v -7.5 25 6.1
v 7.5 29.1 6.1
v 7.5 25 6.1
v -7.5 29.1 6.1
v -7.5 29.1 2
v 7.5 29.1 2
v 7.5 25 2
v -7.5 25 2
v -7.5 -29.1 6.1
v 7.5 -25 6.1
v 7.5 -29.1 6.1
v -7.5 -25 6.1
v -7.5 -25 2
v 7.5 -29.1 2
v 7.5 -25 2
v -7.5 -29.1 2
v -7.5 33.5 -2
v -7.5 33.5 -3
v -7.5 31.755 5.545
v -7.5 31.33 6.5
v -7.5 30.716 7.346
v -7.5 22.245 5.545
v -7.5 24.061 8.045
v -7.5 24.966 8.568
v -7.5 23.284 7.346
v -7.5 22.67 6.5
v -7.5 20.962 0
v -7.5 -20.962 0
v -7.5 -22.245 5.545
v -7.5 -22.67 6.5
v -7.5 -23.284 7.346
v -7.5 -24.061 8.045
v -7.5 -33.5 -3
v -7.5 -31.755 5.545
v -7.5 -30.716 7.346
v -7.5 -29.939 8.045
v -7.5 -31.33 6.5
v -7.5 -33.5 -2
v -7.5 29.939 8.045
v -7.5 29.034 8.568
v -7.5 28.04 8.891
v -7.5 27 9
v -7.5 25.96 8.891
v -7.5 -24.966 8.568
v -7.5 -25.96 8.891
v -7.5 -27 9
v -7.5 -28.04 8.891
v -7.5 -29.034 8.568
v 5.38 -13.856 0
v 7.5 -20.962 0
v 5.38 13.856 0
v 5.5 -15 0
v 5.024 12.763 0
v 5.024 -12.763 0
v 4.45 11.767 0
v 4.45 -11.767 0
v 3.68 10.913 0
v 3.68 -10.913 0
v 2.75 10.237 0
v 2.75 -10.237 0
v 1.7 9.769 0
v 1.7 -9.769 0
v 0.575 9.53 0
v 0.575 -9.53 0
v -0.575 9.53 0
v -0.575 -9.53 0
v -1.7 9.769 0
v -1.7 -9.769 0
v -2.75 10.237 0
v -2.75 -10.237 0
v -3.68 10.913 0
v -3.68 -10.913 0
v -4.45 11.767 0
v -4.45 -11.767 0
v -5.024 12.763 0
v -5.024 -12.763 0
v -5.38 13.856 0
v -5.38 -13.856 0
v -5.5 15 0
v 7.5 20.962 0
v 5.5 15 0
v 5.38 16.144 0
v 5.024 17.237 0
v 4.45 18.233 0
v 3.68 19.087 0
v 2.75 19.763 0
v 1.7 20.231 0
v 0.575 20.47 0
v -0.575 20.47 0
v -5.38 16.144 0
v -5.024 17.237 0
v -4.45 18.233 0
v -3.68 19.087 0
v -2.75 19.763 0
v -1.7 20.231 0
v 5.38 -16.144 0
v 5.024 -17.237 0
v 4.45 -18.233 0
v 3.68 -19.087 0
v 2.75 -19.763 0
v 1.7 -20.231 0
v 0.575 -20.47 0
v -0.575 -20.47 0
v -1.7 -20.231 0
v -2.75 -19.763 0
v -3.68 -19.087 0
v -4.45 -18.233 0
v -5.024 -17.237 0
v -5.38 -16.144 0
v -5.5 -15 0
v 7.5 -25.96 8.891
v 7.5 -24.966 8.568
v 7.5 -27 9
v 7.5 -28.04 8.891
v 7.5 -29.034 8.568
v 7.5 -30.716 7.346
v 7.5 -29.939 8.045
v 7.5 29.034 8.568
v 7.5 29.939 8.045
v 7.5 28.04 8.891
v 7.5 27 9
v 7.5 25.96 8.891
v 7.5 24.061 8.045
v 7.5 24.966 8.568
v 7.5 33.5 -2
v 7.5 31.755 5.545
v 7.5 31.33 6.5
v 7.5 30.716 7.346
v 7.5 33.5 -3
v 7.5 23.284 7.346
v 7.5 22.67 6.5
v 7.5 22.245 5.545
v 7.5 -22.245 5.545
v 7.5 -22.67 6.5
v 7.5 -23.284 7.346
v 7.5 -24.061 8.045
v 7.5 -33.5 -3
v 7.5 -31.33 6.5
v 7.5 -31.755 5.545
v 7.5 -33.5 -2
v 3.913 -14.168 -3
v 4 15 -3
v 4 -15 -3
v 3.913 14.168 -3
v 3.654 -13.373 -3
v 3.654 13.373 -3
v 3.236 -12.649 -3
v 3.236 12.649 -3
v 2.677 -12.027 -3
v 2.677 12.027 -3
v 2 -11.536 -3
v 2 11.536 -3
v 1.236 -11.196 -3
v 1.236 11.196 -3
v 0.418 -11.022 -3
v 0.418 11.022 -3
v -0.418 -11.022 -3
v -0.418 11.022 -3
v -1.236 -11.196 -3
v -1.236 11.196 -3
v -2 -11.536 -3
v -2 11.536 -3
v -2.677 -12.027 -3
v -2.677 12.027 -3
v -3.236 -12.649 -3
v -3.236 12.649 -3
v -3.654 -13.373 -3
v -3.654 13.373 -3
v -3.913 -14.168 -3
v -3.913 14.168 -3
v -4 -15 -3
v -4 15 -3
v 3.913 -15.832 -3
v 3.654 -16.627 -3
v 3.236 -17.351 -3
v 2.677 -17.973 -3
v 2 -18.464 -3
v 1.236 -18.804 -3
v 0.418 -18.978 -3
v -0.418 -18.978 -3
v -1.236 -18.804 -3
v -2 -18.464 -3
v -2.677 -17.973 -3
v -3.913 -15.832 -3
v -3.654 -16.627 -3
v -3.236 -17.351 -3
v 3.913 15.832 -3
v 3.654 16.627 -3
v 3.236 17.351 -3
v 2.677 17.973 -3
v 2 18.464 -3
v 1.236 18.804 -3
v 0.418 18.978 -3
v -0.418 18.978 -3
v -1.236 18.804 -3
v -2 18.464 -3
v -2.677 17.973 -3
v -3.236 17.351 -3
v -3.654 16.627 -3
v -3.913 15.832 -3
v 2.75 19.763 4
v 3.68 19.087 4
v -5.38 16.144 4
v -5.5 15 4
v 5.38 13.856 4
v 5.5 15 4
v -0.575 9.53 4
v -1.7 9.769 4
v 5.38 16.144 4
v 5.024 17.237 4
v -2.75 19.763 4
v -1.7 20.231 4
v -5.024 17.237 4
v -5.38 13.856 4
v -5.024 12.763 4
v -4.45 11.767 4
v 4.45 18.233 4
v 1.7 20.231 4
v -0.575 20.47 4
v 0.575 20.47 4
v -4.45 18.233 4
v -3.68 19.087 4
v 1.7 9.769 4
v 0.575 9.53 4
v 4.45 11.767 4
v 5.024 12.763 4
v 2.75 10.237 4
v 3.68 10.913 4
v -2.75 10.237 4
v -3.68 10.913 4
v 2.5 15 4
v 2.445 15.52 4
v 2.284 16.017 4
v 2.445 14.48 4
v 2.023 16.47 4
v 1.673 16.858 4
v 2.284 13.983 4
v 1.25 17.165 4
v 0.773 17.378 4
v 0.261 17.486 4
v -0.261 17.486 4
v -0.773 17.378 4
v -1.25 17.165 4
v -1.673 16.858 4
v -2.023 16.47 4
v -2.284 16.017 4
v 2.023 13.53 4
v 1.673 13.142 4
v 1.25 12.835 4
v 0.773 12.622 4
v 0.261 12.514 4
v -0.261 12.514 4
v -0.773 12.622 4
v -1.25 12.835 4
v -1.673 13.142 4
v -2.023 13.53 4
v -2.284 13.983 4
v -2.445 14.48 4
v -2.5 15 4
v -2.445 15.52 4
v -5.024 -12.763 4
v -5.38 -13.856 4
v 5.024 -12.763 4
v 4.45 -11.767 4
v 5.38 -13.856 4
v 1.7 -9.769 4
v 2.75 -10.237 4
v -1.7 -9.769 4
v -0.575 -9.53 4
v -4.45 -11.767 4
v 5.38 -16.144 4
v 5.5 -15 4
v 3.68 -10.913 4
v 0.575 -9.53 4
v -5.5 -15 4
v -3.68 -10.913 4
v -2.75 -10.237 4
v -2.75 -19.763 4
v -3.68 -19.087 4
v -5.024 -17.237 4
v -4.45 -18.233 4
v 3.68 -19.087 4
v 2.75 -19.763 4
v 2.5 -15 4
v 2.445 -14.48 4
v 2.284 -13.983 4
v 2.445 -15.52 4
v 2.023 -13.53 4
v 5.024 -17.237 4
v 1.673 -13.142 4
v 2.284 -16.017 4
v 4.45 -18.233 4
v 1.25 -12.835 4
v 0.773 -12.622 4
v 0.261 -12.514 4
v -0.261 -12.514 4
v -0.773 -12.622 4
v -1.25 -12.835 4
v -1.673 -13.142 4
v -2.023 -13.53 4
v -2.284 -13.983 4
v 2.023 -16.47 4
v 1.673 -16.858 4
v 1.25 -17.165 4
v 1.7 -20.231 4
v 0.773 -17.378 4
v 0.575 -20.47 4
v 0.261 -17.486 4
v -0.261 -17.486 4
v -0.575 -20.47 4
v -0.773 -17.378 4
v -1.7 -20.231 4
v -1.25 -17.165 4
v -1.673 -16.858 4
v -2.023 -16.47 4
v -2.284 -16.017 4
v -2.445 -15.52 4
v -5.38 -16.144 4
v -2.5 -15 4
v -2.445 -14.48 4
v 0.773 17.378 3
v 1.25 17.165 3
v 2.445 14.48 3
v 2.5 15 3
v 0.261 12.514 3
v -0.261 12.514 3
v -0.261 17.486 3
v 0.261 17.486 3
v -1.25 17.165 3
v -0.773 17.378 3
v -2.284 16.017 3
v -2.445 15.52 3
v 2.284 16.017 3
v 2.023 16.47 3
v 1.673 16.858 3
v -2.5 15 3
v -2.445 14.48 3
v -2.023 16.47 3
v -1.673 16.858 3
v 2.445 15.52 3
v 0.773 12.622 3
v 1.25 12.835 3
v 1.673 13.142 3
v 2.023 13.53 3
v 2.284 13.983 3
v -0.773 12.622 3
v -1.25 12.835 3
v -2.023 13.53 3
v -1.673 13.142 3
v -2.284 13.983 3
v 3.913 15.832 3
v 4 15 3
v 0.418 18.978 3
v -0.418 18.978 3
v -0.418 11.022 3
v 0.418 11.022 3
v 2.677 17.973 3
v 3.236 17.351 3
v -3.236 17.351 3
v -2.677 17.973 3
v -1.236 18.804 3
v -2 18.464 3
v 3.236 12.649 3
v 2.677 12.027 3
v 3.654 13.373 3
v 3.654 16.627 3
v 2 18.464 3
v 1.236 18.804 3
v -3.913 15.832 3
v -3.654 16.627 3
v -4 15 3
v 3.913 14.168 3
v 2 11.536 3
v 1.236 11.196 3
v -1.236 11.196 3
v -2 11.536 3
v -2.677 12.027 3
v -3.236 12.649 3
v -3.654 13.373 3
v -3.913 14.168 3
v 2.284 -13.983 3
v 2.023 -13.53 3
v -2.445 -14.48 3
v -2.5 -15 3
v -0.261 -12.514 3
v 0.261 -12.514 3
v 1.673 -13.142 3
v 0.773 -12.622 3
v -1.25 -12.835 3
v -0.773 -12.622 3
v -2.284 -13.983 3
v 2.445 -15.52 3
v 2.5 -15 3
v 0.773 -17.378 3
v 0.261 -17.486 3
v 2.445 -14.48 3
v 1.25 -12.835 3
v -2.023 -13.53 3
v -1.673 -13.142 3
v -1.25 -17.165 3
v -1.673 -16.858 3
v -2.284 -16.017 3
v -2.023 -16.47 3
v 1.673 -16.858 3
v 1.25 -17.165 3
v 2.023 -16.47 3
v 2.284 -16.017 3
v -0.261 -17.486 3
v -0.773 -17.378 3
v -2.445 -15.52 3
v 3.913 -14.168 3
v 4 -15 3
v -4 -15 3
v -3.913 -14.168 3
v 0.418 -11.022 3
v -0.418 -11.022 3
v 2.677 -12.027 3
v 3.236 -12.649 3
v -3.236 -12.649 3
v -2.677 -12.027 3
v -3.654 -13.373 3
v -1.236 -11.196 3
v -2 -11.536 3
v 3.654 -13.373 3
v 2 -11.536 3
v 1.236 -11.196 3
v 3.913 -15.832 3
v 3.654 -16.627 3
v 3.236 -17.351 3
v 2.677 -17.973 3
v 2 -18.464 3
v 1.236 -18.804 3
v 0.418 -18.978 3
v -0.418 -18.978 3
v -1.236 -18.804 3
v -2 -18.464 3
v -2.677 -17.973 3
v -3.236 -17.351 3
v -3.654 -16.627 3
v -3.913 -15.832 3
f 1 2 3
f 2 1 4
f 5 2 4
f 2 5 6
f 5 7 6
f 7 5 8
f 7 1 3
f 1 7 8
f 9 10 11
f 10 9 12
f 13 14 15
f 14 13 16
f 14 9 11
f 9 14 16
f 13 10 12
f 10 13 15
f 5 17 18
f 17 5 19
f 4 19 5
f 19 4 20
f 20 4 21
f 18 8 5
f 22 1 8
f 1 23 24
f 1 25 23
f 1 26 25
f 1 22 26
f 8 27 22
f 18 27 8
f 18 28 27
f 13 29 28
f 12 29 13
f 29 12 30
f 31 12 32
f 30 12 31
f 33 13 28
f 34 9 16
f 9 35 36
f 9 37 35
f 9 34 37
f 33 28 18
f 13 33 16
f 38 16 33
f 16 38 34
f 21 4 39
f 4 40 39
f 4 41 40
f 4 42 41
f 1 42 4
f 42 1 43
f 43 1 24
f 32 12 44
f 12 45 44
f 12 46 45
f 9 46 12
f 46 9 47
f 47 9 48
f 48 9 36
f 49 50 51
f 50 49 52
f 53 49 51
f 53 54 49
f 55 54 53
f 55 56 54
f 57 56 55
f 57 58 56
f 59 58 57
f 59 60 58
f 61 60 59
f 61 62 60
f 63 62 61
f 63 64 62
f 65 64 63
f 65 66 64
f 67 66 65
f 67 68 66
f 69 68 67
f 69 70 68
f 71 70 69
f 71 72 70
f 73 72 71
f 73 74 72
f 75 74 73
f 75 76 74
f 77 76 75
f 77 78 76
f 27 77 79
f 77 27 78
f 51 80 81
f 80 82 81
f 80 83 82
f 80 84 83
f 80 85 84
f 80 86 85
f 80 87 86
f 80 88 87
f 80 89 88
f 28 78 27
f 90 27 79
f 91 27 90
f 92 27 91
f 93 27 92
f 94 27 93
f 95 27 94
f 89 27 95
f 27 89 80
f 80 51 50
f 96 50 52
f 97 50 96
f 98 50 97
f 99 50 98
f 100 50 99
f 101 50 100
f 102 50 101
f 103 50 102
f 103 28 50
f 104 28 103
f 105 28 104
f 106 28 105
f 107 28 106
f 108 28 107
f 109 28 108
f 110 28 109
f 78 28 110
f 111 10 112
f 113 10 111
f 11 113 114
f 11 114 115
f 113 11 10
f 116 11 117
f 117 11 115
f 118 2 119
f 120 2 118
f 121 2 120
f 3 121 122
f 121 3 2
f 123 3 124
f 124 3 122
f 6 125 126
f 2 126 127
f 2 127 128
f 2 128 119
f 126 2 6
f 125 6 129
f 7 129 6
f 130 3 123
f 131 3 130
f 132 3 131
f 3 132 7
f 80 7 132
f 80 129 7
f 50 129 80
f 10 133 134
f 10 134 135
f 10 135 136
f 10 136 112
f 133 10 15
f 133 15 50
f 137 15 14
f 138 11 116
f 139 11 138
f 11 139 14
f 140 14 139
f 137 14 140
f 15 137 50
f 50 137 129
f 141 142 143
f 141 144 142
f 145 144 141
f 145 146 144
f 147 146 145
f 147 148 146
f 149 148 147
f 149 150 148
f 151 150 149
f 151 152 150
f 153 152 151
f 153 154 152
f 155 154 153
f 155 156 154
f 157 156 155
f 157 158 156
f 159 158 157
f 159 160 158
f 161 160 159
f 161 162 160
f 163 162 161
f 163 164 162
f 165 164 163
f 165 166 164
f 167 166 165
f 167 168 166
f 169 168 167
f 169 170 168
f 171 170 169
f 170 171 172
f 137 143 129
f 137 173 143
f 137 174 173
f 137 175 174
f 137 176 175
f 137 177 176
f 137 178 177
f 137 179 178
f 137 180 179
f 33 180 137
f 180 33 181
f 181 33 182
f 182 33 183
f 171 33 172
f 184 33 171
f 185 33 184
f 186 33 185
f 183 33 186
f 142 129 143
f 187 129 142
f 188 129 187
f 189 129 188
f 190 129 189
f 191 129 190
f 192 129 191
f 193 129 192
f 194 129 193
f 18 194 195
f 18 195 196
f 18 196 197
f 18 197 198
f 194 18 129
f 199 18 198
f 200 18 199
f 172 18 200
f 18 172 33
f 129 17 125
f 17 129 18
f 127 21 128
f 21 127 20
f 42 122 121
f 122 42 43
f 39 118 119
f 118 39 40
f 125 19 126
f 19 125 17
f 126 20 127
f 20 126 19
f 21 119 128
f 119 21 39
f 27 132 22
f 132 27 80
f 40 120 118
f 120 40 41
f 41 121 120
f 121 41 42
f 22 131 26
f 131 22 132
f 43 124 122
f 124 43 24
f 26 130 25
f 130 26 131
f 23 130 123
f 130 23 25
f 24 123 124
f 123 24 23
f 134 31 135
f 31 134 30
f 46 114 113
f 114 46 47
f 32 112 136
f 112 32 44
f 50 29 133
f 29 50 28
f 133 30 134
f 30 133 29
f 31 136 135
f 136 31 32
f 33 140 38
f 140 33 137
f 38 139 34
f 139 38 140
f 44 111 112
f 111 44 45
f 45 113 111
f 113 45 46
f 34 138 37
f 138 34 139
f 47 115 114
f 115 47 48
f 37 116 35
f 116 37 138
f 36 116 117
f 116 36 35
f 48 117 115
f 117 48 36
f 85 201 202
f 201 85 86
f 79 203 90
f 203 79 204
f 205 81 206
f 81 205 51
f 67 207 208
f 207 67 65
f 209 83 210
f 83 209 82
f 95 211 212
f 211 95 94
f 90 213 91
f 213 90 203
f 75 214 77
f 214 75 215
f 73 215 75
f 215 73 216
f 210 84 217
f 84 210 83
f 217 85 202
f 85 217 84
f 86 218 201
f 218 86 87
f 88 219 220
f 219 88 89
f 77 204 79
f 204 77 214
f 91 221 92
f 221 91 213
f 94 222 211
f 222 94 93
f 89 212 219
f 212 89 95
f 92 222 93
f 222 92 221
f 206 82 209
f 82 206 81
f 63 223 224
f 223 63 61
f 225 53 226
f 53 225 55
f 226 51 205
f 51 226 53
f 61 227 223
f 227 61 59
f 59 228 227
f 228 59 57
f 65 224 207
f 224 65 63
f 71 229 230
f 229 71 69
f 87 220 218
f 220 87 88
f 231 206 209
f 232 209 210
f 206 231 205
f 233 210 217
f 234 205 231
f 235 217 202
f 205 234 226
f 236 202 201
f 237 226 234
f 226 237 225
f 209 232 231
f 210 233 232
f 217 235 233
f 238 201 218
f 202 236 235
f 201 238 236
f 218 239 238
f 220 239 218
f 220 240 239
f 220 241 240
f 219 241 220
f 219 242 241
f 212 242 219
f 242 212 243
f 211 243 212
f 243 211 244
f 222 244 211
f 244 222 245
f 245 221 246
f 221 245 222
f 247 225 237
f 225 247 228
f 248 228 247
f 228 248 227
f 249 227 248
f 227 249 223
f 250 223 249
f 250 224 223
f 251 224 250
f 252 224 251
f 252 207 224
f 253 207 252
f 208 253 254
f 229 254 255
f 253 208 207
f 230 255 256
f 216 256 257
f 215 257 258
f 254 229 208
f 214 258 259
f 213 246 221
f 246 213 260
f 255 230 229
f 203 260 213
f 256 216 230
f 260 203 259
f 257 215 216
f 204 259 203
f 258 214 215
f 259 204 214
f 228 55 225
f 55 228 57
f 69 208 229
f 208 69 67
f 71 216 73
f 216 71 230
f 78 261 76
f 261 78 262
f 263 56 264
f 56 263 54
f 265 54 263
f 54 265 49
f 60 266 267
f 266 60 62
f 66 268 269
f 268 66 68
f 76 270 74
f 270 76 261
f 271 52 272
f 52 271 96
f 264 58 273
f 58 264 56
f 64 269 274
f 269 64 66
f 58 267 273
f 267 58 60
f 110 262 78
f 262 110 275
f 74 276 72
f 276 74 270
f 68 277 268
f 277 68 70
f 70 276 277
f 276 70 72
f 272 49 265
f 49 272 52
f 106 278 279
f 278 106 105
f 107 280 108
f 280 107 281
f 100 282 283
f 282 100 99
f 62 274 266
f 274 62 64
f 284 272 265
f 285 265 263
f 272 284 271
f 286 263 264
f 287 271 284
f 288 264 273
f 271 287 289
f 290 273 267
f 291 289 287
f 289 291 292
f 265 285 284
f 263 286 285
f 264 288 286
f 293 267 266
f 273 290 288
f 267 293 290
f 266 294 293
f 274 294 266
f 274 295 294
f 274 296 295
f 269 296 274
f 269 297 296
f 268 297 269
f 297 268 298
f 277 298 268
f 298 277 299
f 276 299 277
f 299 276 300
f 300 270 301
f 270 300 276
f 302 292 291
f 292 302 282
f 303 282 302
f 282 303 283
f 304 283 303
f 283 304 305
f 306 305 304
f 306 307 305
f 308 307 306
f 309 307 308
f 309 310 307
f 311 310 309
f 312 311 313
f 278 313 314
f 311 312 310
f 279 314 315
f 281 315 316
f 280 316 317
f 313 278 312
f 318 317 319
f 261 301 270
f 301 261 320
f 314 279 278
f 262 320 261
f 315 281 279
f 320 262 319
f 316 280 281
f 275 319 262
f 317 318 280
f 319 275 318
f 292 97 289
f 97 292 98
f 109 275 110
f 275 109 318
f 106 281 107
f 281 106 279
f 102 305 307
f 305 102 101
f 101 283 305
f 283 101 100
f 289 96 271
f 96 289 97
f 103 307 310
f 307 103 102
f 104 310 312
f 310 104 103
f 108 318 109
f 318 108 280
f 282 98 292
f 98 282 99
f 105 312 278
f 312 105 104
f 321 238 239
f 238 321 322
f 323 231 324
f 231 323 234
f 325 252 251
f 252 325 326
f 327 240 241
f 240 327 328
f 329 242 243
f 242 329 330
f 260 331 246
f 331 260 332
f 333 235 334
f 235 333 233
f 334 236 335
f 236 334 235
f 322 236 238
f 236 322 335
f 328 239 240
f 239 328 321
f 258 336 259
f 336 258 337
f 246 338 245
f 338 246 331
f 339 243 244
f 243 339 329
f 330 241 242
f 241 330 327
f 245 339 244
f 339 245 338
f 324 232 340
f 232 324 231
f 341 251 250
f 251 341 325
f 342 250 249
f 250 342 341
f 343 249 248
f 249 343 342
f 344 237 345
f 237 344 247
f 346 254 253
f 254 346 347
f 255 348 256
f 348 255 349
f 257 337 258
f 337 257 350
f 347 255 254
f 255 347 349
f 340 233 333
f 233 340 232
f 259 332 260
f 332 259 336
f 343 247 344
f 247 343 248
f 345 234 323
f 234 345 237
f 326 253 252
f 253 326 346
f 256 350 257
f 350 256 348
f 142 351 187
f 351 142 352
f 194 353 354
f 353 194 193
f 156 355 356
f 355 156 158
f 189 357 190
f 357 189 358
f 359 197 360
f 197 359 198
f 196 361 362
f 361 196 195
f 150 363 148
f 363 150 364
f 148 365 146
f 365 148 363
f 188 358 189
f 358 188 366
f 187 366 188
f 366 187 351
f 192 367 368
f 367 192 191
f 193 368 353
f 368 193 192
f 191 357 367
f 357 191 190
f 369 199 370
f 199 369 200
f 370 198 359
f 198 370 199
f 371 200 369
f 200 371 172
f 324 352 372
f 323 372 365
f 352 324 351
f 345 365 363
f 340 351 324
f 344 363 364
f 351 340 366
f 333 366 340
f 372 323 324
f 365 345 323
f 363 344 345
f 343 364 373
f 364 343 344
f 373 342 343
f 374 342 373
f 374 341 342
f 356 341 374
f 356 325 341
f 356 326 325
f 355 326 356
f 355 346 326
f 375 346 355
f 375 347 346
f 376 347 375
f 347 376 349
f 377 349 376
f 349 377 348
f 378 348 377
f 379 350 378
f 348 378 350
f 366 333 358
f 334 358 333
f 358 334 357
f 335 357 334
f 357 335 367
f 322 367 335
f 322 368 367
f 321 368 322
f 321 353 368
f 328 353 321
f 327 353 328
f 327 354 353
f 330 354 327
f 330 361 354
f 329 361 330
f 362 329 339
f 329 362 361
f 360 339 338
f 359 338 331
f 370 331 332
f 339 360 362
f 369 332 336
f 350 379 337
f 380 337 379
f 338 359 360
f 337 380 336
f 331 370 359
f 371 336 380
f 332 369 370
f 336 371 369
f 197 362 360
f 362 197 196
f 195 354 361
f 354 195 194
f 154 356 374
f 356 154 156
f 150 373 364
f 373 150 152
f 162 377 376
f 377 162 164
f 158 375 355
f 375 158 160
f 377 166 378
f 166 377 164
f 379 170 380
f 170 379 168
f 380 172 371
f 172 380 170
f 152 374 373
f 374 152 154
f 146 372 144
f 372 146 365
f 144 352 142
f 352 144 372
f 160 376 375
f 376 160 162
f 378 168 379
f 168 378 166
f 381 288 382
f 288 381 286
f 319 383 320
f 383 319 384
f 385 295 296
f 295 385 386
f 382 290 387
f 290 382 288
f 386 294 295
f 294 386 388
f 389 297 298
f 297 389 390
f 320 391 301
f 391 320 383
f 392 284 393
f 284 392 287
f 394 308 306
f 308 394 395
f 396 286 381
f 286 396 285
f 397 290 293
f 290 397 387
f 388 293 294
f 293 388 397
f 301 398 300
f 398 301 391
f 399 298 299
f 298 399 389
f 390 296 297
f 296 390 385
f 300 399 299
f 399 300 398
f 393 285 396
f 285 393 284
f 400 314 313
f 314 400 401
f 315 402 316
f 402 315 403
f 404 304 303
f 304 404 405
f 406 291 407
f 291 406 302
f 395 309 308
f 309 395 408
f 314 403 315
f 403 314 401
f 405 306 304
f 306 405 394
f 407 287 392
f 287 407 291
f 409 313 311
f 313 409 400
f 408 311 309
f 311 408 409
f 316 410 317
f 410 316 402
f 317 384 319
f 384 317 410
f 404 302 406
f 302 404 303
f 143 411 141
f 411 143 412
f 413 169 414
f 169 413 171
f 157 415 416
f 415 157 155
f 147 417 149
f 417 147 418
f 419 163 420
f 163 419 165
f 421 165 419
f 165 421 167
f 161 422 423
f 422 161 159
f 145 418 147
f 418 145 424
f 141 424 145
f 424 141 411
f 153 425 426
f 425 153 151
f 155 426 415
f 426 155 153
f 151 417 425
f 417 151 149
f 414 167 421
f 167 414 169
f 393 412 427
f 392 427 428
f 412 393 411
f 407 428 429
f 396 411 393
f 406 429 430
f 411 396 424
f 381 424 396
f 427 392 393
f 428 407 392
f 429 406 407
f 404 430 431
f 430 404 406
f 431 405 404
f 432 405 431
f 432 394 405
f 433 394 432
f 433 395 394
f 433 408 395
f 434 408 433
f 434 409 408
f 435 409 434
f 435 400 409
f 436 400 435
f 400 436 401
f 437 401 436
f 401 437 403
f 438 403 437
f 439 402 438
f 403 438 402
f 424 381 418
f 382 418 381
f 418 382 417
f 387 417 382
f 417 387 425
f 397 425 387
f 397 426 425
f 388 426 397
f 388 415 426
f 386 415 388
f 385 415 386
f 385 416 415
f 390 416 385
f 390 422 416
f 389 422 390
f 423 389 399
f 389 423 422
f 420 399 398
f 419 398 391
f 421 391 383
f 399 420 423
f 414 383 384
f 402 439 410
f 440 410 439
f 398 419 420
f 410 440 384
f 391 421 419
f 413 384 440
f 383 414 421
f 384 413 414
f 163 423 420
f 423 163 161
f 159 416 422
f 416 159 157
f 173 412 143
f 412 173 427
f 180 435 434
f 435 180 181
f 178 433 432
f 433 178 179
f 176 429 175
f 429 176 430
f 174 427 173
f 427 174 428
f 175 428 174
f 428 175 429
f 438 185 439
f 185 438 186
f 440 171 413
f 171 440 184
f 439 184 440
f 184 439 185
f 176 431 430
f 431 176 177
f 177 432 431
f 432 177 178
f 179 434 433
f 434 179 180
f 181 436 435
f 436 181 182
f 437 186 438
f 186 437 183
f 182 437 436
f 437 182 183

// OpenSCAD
t = 5;

rx = 100;
rdy = 4.1;
roy = 30;
royl = 50;





module rails(oz=2) {
    
  translate([-rx/2,roy/2,oz]) cube([rx,rdy,rdy]);
  mirror([0,1,0]){
    translate([-rx/2,roy/2,oz]) cube([rx,rdy,rdy]);
  }
    
}

module railsLow(oz=2) {
    
  translate([-rx/2,royl/2,oz]) cube([rx,rdy,rdy]);
  mirror([0,1,0]){
    translate([-rx/2,royl/2,oz]) cube([rx,rdy,rdy]);
  }
    
}


difference(){
union(){
  translate([-15/2,-60/2,-3])cube([15,60,3]);
    
  hull(){
    translate([-15/2,27,4])rotate([0,90,0])cylinder(r=5,h=15,$fn=30);
    translate([-15/2,27-13/2,-3])cube([15,13,1]);
  }
  hull(){
    translate([-15/2,-27,4])rotate([0,90,0])cylinder(r=5,h=15,$fn=30);
    translate([-15/2,-27-13/2,-3])cube([15,13,1]);
  }
  
  translate([0,+15,0])cylinder(r=5.5,h=4,$fn=30);
  translate([0,-15,0])cylinder(r=5.5,h=4,$fn=30);
}

  translate([0,15,-5])cylinder(r=2.5,h=15,$fn=30);
  translate([0,15,-7])cylinder(r=4,h=10,$fn=30);

  translate([0,-15,-5])cylinder(r=2.5,h=15,$fn=30);
  translate([0,-15,-7])cylinder(r=4,h=10,$fn=30);
railsLow(oz=2);

}
